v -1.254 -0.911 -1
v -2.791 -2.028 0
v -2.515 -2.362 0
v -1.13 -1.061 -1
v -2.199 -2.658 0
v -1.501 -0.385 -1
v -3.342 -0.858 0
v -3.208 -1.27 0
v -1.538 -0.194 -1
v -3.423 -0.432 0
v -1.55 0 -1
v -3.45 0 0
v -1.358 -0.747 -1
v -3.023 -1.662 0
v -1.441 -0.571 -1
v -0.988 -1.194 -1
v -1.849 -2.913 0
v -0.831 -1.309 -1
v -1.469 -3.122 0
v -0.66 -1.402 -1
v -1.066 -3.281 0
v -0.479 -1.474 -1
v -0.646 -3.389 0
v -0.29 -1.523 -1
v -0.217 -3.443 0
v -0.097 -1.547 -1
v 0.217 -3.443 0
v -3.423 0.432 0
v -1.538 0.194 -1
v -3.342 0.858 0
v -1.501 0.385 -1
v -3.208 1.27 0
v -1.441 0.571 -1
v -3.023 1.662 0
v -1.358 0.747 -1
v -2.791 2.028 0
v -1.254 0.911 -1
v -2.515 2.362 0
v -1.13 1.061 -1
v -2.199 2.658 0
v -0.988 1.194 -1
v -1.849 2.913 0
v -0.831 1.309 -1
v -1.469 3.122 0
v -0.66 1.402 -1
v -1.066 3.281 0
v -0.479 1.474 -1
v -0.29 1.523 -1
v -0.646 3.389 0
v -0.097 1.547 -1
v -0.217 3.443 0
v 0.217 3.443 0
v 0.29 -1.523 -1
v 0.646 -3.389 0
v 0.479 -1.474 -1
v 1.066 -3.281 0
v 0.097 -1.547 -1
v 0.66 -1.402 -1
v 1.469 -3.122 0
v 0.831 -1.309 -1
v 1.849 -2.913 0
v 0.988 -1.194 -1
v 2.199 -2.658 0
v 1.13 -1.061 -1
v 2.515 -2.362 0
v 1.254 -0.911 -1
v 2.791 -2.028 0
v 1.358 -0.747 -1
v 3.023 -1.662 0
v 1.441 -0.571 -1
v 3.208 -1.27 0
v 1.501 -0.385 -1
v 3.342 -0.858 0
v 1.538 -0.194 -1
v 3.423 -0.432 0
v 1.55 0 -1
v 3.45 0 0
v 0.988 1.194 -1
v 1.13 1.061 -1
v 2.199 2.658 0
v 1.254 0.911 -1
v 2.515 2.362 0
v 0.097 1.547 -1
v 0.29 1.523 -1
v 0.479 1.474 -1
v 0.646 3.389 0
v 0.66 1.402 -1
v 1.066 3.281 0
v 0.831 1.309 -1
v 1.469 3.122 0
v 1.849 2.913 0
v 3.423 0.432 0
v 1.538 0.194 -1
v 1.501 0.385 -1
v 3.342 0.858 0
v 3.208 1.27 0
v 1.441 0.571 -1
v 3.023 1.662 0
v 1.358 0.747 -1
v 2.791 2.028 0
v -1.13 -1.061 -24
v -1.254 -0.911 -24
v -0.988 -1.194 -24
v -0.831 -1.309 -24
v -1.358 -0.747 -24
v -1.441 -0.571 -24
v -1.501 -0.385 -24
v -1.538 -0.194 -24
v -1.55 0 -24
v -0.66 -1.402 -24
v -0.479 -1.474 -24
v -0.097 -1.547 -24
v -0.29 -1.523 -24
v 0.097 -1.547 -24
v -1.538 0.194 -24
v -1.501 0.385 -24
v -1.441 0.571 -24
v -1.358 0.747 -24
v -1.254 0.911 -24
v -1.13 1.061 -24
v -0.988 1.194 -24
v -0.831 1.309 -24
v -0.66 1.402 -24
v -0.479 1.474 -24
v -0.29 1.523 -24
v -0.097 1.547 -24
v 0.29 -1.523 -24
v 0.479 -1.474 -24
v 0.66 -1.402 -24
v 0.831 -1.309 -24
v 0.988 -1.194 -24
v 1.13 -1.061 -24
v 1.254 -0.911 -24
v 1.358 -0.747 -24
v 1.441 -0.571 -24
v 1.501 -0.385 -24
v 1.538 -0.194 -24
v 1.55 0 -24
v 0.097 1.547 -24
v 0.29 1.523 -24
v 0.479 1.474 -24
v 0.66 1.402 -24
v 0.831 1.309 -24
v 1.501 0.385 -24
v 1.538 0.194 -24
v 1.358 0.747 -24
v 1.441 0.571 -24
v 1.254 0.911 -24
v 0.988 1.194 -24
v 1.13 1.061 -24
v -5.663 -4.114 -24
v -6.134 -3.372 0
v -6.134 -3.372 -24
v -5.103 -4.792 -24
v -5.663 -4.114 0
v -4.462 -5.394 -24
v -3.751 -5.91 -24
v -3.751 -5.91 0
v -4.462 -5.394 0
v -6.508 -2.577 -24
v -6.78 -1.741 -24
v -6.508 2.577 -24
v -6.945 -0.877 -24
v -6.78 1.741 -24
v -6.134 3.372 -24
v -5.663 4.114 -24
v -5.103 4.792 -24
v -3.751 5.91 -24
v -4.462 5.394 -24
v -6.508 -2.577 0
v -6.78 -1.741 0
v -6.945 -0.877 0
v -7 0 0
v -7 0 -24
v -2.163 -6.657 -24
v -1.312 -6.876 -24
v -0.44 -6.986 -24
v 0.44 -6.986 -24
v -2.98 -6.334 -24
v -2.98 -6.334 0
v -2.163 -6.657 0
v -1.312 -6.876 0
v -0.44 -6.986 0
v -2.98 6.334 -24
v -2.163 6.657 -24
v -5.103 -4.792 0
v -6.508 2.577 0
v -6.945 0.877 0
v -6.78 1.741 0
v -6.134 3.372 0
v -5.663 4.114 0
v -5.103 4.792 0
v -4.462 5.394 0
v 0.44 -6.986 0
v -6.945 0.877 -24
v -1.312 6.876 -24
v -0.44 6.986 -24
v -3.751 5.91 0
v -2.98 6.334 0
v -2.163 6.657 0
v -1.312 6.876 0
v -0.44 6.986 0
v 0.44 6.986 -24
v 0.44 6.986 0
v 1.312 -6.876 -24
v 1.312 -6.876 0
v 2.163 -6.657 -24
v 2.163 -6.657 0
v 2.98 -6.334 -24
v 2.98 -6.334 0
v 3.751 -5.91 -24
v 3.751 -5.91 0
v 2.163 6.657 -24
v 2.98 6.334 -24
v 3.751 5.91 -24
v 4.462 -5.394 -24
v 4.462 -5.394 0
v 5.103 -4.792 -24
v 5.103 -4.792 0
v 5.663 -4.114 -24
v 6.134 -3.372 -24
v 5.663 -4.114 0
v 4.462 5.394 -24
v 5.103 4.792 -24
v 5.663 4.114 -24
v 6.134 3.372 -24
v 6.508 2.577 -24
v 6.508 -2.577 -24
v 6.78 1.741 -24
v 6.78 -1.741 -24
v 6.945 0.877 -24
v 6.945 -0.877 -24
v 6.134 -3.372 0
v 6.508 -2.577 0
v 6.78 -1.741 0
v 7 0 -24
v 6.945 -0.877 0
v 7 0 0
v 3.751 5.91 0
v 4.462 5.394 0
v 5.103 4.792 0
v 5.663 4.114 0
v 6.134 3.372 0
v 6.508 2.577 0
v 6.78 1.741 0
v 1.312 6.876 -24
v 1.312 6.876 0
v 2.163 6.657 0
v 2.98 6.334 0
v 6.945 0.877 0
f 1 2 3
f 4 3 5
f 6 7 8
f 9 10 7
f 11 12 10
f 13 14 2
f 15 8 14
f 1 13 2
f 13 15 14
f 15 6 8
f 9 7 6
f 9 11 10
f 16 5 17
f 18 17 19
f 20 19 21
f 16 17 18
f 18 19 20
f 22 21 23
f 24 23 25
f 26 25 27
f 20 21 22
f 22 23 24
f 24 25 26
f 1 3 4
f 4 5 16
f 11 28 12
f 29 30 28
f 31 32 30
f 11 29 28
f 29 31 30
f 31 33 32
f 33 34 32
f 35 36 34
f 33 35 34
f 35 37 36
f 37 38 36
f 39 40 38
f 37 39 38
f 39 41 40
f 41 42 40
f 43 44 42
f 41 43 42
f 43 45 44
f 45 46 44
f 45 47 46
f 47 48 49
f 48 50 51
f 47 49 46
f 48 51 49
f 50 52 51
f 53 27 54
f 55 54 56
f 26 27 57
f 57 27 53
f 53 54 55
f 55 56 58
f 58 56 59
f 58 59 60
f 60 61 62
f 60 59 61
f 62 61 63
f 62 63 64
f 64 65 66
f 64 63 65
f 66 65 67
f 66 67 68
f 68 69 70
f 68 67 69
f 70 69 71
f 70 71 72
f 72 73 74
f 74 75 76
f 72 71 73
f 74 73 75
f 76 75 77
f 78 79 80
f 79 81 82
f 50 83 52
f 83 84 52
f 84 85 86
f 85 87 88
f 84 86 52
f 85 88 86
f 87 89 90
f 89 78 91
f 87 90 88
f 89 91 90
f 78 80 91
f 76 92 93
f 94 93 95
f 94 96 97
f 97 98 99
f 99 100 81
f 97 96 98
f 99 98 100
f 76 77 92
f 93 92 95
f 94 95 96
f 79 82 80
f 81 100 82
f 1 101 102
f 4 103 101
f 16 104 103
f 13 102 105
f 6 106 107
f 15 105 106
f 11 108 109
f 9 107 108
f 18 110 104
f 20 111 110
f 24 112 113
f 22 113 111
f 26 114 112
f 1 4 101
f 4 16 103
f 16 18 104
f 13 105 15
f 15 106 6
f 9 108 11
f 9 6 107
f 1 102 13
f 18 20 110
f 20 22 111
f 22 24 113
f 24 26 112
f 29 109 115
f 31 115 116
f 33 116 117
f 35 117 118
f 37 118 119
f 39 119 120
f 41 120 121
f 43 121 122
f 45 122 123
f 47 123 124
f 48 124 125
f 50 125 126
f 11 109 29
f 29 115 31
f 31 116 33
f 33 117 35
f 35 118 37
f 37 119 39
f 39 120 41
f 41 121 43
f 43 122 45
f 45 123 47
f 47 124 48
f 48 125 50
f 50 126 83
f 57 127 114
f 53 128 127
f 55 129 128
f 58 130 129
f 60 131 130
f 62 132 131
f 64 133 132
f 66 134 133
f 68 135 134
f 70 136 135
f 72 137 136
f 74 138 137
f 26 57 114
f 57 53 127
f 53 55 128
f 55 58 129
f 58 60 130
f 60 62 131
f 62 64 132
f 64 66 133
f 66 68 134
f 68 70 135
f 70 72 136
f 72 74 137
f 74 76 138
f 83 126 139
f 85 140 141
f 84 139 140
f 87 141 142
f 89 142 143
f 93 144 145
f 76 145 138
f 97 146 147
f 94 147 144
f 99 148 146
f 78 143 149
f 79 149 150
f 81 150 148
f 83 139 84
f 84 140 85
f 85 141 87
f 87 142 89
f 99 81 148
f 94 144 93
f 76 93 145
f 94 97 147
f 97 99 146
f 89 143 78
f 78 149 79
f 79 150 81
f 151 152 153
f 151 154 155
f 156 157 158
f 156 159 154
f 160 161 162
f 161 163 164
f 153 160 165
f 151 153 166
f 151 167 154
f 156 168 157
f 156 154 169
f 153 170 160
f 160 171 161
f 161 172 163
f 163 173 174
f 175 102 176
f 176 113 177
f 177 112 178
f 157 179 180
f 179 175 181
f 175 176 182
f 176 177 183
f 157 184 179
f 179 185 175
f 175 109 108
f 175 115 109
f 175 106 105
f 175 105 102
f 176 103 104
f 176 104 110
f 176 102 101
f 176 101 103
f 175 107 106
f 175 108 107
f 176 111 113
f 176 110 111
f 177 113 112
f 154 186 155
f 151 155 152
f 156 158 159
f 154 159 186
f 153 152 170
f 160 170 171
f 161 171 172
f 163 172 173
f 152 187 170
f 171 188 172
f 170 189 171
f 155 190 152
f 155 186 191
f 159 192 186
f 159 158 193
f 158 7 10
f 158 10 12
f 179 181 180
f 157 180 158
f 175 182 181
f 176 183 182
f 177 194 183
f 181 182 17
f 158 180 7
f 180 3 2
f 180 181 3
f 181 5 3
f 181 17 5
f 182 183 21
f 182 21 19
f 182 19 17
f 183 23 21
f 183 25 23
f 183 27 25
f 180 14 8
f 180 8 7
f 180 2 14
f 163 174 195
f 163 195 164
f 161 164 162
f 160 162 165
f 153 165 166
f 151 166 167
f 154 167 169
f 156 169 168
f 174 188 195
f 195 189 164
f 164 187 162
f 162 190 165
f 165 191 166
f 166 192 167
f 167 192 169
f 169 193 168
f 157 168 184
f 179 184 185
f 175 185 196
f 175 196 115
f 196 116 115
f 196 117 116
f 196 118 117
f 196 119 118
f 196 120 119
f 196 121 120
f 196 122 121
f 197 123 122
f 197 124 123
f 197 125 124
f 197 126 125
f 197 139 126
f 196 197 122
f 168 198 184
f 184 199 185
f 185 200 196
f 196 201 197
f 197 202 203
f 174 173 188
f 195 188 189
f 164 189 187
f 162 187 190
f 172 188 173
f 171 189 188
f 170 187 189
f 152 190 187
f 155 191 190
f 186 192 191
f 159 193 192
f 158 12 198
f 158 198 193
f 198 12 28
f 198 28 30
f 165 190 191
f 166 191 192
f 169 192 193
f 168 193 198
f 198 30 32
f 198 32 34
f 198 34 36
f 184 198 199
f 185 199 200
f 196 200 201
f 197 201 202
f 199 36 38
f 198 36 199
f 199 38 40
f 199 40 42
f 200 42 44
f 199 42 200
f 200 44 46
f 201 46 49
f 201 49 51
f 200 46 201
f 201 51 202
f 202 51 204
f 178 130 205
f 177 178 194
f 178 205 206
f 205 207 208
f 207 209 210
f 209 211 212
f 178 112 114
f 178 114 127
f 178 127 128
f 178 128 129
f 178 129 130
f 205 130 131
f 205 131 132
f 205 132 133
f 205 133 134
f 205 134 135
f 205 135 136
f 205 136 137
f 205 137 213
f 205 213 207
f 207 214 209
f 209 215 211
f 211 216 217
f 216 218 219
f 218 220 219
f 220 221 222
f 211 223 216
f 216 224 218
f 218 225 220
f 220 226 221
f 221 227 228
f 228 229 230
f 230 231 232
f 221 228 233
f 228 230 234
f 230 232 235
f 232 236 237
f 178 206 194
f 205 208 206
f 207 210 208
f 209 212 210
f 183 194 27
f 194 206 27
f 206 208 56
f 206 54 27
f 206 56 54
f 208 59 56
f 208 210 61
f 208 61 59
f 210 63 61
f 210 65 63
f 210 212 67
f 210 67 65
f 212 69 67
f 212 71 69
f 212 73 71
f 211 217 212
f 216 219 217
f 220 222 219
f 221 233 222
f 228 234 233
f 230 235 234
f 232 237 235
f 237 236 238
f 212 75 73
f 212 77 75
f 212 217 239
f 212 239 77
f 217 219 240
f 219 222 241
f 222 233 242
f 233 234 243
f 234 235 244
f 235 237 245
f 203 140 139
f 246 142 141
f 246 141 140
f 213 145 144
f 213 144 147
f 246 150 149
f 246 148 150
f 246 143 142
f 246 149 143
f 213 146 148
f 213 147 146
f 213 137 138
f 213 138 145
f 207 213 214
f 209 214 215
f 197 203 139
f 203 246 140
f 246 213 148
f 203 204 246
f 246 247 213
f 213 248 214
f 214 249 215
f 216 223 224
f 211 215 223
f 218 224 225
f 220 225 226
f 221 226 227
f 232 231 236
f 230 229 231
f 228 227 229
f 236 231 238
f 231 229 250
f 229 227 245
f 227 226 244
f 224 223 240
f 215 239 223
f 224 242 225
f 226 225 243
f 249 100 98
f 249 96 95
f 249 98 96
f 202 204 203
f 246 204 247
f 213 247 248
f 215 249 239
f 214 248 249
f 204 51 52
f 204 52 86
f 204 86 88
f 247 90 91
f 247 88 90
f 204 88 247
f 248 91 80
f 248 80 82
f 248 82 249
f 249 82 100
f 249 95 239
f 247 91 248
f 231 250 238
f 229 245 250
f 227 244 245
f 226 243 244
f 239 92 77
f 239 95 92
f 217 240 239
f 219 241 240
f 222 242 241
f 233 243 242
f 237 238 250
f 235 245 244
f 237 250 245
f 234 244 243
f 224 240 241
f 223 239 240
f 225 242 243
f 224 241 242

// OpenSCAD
$fn = 50;

difference() {
	union() {
		translate(v = [0, 0, -24.0]) {
			cylinder(h = 24, r = 7.0);
		}
	}
	union() {
		translate(v = [0, 0, 0]) {
			rotate(a = [0, 0, 0]) {
				difference() {
					union() {
						translate(v = [0, 0, -27.0]) {
							cylinder(h = 27, r = 1.25);
						}
						translate(v = [0, 0, -1.0]) {
							cylinder(h = 1.0, r1 = 1.55, r2 = 3.45);
						}
						translate(v = [0, 0, -27.0]) {
							cylinder(h = 27, r = 1.55);
						}
						translate(v = [0, 0, -27.0]) {
							cylinder(h = 27, r = 1.25);
						}
					}
					union();
				}
			}
		}
	}
}
